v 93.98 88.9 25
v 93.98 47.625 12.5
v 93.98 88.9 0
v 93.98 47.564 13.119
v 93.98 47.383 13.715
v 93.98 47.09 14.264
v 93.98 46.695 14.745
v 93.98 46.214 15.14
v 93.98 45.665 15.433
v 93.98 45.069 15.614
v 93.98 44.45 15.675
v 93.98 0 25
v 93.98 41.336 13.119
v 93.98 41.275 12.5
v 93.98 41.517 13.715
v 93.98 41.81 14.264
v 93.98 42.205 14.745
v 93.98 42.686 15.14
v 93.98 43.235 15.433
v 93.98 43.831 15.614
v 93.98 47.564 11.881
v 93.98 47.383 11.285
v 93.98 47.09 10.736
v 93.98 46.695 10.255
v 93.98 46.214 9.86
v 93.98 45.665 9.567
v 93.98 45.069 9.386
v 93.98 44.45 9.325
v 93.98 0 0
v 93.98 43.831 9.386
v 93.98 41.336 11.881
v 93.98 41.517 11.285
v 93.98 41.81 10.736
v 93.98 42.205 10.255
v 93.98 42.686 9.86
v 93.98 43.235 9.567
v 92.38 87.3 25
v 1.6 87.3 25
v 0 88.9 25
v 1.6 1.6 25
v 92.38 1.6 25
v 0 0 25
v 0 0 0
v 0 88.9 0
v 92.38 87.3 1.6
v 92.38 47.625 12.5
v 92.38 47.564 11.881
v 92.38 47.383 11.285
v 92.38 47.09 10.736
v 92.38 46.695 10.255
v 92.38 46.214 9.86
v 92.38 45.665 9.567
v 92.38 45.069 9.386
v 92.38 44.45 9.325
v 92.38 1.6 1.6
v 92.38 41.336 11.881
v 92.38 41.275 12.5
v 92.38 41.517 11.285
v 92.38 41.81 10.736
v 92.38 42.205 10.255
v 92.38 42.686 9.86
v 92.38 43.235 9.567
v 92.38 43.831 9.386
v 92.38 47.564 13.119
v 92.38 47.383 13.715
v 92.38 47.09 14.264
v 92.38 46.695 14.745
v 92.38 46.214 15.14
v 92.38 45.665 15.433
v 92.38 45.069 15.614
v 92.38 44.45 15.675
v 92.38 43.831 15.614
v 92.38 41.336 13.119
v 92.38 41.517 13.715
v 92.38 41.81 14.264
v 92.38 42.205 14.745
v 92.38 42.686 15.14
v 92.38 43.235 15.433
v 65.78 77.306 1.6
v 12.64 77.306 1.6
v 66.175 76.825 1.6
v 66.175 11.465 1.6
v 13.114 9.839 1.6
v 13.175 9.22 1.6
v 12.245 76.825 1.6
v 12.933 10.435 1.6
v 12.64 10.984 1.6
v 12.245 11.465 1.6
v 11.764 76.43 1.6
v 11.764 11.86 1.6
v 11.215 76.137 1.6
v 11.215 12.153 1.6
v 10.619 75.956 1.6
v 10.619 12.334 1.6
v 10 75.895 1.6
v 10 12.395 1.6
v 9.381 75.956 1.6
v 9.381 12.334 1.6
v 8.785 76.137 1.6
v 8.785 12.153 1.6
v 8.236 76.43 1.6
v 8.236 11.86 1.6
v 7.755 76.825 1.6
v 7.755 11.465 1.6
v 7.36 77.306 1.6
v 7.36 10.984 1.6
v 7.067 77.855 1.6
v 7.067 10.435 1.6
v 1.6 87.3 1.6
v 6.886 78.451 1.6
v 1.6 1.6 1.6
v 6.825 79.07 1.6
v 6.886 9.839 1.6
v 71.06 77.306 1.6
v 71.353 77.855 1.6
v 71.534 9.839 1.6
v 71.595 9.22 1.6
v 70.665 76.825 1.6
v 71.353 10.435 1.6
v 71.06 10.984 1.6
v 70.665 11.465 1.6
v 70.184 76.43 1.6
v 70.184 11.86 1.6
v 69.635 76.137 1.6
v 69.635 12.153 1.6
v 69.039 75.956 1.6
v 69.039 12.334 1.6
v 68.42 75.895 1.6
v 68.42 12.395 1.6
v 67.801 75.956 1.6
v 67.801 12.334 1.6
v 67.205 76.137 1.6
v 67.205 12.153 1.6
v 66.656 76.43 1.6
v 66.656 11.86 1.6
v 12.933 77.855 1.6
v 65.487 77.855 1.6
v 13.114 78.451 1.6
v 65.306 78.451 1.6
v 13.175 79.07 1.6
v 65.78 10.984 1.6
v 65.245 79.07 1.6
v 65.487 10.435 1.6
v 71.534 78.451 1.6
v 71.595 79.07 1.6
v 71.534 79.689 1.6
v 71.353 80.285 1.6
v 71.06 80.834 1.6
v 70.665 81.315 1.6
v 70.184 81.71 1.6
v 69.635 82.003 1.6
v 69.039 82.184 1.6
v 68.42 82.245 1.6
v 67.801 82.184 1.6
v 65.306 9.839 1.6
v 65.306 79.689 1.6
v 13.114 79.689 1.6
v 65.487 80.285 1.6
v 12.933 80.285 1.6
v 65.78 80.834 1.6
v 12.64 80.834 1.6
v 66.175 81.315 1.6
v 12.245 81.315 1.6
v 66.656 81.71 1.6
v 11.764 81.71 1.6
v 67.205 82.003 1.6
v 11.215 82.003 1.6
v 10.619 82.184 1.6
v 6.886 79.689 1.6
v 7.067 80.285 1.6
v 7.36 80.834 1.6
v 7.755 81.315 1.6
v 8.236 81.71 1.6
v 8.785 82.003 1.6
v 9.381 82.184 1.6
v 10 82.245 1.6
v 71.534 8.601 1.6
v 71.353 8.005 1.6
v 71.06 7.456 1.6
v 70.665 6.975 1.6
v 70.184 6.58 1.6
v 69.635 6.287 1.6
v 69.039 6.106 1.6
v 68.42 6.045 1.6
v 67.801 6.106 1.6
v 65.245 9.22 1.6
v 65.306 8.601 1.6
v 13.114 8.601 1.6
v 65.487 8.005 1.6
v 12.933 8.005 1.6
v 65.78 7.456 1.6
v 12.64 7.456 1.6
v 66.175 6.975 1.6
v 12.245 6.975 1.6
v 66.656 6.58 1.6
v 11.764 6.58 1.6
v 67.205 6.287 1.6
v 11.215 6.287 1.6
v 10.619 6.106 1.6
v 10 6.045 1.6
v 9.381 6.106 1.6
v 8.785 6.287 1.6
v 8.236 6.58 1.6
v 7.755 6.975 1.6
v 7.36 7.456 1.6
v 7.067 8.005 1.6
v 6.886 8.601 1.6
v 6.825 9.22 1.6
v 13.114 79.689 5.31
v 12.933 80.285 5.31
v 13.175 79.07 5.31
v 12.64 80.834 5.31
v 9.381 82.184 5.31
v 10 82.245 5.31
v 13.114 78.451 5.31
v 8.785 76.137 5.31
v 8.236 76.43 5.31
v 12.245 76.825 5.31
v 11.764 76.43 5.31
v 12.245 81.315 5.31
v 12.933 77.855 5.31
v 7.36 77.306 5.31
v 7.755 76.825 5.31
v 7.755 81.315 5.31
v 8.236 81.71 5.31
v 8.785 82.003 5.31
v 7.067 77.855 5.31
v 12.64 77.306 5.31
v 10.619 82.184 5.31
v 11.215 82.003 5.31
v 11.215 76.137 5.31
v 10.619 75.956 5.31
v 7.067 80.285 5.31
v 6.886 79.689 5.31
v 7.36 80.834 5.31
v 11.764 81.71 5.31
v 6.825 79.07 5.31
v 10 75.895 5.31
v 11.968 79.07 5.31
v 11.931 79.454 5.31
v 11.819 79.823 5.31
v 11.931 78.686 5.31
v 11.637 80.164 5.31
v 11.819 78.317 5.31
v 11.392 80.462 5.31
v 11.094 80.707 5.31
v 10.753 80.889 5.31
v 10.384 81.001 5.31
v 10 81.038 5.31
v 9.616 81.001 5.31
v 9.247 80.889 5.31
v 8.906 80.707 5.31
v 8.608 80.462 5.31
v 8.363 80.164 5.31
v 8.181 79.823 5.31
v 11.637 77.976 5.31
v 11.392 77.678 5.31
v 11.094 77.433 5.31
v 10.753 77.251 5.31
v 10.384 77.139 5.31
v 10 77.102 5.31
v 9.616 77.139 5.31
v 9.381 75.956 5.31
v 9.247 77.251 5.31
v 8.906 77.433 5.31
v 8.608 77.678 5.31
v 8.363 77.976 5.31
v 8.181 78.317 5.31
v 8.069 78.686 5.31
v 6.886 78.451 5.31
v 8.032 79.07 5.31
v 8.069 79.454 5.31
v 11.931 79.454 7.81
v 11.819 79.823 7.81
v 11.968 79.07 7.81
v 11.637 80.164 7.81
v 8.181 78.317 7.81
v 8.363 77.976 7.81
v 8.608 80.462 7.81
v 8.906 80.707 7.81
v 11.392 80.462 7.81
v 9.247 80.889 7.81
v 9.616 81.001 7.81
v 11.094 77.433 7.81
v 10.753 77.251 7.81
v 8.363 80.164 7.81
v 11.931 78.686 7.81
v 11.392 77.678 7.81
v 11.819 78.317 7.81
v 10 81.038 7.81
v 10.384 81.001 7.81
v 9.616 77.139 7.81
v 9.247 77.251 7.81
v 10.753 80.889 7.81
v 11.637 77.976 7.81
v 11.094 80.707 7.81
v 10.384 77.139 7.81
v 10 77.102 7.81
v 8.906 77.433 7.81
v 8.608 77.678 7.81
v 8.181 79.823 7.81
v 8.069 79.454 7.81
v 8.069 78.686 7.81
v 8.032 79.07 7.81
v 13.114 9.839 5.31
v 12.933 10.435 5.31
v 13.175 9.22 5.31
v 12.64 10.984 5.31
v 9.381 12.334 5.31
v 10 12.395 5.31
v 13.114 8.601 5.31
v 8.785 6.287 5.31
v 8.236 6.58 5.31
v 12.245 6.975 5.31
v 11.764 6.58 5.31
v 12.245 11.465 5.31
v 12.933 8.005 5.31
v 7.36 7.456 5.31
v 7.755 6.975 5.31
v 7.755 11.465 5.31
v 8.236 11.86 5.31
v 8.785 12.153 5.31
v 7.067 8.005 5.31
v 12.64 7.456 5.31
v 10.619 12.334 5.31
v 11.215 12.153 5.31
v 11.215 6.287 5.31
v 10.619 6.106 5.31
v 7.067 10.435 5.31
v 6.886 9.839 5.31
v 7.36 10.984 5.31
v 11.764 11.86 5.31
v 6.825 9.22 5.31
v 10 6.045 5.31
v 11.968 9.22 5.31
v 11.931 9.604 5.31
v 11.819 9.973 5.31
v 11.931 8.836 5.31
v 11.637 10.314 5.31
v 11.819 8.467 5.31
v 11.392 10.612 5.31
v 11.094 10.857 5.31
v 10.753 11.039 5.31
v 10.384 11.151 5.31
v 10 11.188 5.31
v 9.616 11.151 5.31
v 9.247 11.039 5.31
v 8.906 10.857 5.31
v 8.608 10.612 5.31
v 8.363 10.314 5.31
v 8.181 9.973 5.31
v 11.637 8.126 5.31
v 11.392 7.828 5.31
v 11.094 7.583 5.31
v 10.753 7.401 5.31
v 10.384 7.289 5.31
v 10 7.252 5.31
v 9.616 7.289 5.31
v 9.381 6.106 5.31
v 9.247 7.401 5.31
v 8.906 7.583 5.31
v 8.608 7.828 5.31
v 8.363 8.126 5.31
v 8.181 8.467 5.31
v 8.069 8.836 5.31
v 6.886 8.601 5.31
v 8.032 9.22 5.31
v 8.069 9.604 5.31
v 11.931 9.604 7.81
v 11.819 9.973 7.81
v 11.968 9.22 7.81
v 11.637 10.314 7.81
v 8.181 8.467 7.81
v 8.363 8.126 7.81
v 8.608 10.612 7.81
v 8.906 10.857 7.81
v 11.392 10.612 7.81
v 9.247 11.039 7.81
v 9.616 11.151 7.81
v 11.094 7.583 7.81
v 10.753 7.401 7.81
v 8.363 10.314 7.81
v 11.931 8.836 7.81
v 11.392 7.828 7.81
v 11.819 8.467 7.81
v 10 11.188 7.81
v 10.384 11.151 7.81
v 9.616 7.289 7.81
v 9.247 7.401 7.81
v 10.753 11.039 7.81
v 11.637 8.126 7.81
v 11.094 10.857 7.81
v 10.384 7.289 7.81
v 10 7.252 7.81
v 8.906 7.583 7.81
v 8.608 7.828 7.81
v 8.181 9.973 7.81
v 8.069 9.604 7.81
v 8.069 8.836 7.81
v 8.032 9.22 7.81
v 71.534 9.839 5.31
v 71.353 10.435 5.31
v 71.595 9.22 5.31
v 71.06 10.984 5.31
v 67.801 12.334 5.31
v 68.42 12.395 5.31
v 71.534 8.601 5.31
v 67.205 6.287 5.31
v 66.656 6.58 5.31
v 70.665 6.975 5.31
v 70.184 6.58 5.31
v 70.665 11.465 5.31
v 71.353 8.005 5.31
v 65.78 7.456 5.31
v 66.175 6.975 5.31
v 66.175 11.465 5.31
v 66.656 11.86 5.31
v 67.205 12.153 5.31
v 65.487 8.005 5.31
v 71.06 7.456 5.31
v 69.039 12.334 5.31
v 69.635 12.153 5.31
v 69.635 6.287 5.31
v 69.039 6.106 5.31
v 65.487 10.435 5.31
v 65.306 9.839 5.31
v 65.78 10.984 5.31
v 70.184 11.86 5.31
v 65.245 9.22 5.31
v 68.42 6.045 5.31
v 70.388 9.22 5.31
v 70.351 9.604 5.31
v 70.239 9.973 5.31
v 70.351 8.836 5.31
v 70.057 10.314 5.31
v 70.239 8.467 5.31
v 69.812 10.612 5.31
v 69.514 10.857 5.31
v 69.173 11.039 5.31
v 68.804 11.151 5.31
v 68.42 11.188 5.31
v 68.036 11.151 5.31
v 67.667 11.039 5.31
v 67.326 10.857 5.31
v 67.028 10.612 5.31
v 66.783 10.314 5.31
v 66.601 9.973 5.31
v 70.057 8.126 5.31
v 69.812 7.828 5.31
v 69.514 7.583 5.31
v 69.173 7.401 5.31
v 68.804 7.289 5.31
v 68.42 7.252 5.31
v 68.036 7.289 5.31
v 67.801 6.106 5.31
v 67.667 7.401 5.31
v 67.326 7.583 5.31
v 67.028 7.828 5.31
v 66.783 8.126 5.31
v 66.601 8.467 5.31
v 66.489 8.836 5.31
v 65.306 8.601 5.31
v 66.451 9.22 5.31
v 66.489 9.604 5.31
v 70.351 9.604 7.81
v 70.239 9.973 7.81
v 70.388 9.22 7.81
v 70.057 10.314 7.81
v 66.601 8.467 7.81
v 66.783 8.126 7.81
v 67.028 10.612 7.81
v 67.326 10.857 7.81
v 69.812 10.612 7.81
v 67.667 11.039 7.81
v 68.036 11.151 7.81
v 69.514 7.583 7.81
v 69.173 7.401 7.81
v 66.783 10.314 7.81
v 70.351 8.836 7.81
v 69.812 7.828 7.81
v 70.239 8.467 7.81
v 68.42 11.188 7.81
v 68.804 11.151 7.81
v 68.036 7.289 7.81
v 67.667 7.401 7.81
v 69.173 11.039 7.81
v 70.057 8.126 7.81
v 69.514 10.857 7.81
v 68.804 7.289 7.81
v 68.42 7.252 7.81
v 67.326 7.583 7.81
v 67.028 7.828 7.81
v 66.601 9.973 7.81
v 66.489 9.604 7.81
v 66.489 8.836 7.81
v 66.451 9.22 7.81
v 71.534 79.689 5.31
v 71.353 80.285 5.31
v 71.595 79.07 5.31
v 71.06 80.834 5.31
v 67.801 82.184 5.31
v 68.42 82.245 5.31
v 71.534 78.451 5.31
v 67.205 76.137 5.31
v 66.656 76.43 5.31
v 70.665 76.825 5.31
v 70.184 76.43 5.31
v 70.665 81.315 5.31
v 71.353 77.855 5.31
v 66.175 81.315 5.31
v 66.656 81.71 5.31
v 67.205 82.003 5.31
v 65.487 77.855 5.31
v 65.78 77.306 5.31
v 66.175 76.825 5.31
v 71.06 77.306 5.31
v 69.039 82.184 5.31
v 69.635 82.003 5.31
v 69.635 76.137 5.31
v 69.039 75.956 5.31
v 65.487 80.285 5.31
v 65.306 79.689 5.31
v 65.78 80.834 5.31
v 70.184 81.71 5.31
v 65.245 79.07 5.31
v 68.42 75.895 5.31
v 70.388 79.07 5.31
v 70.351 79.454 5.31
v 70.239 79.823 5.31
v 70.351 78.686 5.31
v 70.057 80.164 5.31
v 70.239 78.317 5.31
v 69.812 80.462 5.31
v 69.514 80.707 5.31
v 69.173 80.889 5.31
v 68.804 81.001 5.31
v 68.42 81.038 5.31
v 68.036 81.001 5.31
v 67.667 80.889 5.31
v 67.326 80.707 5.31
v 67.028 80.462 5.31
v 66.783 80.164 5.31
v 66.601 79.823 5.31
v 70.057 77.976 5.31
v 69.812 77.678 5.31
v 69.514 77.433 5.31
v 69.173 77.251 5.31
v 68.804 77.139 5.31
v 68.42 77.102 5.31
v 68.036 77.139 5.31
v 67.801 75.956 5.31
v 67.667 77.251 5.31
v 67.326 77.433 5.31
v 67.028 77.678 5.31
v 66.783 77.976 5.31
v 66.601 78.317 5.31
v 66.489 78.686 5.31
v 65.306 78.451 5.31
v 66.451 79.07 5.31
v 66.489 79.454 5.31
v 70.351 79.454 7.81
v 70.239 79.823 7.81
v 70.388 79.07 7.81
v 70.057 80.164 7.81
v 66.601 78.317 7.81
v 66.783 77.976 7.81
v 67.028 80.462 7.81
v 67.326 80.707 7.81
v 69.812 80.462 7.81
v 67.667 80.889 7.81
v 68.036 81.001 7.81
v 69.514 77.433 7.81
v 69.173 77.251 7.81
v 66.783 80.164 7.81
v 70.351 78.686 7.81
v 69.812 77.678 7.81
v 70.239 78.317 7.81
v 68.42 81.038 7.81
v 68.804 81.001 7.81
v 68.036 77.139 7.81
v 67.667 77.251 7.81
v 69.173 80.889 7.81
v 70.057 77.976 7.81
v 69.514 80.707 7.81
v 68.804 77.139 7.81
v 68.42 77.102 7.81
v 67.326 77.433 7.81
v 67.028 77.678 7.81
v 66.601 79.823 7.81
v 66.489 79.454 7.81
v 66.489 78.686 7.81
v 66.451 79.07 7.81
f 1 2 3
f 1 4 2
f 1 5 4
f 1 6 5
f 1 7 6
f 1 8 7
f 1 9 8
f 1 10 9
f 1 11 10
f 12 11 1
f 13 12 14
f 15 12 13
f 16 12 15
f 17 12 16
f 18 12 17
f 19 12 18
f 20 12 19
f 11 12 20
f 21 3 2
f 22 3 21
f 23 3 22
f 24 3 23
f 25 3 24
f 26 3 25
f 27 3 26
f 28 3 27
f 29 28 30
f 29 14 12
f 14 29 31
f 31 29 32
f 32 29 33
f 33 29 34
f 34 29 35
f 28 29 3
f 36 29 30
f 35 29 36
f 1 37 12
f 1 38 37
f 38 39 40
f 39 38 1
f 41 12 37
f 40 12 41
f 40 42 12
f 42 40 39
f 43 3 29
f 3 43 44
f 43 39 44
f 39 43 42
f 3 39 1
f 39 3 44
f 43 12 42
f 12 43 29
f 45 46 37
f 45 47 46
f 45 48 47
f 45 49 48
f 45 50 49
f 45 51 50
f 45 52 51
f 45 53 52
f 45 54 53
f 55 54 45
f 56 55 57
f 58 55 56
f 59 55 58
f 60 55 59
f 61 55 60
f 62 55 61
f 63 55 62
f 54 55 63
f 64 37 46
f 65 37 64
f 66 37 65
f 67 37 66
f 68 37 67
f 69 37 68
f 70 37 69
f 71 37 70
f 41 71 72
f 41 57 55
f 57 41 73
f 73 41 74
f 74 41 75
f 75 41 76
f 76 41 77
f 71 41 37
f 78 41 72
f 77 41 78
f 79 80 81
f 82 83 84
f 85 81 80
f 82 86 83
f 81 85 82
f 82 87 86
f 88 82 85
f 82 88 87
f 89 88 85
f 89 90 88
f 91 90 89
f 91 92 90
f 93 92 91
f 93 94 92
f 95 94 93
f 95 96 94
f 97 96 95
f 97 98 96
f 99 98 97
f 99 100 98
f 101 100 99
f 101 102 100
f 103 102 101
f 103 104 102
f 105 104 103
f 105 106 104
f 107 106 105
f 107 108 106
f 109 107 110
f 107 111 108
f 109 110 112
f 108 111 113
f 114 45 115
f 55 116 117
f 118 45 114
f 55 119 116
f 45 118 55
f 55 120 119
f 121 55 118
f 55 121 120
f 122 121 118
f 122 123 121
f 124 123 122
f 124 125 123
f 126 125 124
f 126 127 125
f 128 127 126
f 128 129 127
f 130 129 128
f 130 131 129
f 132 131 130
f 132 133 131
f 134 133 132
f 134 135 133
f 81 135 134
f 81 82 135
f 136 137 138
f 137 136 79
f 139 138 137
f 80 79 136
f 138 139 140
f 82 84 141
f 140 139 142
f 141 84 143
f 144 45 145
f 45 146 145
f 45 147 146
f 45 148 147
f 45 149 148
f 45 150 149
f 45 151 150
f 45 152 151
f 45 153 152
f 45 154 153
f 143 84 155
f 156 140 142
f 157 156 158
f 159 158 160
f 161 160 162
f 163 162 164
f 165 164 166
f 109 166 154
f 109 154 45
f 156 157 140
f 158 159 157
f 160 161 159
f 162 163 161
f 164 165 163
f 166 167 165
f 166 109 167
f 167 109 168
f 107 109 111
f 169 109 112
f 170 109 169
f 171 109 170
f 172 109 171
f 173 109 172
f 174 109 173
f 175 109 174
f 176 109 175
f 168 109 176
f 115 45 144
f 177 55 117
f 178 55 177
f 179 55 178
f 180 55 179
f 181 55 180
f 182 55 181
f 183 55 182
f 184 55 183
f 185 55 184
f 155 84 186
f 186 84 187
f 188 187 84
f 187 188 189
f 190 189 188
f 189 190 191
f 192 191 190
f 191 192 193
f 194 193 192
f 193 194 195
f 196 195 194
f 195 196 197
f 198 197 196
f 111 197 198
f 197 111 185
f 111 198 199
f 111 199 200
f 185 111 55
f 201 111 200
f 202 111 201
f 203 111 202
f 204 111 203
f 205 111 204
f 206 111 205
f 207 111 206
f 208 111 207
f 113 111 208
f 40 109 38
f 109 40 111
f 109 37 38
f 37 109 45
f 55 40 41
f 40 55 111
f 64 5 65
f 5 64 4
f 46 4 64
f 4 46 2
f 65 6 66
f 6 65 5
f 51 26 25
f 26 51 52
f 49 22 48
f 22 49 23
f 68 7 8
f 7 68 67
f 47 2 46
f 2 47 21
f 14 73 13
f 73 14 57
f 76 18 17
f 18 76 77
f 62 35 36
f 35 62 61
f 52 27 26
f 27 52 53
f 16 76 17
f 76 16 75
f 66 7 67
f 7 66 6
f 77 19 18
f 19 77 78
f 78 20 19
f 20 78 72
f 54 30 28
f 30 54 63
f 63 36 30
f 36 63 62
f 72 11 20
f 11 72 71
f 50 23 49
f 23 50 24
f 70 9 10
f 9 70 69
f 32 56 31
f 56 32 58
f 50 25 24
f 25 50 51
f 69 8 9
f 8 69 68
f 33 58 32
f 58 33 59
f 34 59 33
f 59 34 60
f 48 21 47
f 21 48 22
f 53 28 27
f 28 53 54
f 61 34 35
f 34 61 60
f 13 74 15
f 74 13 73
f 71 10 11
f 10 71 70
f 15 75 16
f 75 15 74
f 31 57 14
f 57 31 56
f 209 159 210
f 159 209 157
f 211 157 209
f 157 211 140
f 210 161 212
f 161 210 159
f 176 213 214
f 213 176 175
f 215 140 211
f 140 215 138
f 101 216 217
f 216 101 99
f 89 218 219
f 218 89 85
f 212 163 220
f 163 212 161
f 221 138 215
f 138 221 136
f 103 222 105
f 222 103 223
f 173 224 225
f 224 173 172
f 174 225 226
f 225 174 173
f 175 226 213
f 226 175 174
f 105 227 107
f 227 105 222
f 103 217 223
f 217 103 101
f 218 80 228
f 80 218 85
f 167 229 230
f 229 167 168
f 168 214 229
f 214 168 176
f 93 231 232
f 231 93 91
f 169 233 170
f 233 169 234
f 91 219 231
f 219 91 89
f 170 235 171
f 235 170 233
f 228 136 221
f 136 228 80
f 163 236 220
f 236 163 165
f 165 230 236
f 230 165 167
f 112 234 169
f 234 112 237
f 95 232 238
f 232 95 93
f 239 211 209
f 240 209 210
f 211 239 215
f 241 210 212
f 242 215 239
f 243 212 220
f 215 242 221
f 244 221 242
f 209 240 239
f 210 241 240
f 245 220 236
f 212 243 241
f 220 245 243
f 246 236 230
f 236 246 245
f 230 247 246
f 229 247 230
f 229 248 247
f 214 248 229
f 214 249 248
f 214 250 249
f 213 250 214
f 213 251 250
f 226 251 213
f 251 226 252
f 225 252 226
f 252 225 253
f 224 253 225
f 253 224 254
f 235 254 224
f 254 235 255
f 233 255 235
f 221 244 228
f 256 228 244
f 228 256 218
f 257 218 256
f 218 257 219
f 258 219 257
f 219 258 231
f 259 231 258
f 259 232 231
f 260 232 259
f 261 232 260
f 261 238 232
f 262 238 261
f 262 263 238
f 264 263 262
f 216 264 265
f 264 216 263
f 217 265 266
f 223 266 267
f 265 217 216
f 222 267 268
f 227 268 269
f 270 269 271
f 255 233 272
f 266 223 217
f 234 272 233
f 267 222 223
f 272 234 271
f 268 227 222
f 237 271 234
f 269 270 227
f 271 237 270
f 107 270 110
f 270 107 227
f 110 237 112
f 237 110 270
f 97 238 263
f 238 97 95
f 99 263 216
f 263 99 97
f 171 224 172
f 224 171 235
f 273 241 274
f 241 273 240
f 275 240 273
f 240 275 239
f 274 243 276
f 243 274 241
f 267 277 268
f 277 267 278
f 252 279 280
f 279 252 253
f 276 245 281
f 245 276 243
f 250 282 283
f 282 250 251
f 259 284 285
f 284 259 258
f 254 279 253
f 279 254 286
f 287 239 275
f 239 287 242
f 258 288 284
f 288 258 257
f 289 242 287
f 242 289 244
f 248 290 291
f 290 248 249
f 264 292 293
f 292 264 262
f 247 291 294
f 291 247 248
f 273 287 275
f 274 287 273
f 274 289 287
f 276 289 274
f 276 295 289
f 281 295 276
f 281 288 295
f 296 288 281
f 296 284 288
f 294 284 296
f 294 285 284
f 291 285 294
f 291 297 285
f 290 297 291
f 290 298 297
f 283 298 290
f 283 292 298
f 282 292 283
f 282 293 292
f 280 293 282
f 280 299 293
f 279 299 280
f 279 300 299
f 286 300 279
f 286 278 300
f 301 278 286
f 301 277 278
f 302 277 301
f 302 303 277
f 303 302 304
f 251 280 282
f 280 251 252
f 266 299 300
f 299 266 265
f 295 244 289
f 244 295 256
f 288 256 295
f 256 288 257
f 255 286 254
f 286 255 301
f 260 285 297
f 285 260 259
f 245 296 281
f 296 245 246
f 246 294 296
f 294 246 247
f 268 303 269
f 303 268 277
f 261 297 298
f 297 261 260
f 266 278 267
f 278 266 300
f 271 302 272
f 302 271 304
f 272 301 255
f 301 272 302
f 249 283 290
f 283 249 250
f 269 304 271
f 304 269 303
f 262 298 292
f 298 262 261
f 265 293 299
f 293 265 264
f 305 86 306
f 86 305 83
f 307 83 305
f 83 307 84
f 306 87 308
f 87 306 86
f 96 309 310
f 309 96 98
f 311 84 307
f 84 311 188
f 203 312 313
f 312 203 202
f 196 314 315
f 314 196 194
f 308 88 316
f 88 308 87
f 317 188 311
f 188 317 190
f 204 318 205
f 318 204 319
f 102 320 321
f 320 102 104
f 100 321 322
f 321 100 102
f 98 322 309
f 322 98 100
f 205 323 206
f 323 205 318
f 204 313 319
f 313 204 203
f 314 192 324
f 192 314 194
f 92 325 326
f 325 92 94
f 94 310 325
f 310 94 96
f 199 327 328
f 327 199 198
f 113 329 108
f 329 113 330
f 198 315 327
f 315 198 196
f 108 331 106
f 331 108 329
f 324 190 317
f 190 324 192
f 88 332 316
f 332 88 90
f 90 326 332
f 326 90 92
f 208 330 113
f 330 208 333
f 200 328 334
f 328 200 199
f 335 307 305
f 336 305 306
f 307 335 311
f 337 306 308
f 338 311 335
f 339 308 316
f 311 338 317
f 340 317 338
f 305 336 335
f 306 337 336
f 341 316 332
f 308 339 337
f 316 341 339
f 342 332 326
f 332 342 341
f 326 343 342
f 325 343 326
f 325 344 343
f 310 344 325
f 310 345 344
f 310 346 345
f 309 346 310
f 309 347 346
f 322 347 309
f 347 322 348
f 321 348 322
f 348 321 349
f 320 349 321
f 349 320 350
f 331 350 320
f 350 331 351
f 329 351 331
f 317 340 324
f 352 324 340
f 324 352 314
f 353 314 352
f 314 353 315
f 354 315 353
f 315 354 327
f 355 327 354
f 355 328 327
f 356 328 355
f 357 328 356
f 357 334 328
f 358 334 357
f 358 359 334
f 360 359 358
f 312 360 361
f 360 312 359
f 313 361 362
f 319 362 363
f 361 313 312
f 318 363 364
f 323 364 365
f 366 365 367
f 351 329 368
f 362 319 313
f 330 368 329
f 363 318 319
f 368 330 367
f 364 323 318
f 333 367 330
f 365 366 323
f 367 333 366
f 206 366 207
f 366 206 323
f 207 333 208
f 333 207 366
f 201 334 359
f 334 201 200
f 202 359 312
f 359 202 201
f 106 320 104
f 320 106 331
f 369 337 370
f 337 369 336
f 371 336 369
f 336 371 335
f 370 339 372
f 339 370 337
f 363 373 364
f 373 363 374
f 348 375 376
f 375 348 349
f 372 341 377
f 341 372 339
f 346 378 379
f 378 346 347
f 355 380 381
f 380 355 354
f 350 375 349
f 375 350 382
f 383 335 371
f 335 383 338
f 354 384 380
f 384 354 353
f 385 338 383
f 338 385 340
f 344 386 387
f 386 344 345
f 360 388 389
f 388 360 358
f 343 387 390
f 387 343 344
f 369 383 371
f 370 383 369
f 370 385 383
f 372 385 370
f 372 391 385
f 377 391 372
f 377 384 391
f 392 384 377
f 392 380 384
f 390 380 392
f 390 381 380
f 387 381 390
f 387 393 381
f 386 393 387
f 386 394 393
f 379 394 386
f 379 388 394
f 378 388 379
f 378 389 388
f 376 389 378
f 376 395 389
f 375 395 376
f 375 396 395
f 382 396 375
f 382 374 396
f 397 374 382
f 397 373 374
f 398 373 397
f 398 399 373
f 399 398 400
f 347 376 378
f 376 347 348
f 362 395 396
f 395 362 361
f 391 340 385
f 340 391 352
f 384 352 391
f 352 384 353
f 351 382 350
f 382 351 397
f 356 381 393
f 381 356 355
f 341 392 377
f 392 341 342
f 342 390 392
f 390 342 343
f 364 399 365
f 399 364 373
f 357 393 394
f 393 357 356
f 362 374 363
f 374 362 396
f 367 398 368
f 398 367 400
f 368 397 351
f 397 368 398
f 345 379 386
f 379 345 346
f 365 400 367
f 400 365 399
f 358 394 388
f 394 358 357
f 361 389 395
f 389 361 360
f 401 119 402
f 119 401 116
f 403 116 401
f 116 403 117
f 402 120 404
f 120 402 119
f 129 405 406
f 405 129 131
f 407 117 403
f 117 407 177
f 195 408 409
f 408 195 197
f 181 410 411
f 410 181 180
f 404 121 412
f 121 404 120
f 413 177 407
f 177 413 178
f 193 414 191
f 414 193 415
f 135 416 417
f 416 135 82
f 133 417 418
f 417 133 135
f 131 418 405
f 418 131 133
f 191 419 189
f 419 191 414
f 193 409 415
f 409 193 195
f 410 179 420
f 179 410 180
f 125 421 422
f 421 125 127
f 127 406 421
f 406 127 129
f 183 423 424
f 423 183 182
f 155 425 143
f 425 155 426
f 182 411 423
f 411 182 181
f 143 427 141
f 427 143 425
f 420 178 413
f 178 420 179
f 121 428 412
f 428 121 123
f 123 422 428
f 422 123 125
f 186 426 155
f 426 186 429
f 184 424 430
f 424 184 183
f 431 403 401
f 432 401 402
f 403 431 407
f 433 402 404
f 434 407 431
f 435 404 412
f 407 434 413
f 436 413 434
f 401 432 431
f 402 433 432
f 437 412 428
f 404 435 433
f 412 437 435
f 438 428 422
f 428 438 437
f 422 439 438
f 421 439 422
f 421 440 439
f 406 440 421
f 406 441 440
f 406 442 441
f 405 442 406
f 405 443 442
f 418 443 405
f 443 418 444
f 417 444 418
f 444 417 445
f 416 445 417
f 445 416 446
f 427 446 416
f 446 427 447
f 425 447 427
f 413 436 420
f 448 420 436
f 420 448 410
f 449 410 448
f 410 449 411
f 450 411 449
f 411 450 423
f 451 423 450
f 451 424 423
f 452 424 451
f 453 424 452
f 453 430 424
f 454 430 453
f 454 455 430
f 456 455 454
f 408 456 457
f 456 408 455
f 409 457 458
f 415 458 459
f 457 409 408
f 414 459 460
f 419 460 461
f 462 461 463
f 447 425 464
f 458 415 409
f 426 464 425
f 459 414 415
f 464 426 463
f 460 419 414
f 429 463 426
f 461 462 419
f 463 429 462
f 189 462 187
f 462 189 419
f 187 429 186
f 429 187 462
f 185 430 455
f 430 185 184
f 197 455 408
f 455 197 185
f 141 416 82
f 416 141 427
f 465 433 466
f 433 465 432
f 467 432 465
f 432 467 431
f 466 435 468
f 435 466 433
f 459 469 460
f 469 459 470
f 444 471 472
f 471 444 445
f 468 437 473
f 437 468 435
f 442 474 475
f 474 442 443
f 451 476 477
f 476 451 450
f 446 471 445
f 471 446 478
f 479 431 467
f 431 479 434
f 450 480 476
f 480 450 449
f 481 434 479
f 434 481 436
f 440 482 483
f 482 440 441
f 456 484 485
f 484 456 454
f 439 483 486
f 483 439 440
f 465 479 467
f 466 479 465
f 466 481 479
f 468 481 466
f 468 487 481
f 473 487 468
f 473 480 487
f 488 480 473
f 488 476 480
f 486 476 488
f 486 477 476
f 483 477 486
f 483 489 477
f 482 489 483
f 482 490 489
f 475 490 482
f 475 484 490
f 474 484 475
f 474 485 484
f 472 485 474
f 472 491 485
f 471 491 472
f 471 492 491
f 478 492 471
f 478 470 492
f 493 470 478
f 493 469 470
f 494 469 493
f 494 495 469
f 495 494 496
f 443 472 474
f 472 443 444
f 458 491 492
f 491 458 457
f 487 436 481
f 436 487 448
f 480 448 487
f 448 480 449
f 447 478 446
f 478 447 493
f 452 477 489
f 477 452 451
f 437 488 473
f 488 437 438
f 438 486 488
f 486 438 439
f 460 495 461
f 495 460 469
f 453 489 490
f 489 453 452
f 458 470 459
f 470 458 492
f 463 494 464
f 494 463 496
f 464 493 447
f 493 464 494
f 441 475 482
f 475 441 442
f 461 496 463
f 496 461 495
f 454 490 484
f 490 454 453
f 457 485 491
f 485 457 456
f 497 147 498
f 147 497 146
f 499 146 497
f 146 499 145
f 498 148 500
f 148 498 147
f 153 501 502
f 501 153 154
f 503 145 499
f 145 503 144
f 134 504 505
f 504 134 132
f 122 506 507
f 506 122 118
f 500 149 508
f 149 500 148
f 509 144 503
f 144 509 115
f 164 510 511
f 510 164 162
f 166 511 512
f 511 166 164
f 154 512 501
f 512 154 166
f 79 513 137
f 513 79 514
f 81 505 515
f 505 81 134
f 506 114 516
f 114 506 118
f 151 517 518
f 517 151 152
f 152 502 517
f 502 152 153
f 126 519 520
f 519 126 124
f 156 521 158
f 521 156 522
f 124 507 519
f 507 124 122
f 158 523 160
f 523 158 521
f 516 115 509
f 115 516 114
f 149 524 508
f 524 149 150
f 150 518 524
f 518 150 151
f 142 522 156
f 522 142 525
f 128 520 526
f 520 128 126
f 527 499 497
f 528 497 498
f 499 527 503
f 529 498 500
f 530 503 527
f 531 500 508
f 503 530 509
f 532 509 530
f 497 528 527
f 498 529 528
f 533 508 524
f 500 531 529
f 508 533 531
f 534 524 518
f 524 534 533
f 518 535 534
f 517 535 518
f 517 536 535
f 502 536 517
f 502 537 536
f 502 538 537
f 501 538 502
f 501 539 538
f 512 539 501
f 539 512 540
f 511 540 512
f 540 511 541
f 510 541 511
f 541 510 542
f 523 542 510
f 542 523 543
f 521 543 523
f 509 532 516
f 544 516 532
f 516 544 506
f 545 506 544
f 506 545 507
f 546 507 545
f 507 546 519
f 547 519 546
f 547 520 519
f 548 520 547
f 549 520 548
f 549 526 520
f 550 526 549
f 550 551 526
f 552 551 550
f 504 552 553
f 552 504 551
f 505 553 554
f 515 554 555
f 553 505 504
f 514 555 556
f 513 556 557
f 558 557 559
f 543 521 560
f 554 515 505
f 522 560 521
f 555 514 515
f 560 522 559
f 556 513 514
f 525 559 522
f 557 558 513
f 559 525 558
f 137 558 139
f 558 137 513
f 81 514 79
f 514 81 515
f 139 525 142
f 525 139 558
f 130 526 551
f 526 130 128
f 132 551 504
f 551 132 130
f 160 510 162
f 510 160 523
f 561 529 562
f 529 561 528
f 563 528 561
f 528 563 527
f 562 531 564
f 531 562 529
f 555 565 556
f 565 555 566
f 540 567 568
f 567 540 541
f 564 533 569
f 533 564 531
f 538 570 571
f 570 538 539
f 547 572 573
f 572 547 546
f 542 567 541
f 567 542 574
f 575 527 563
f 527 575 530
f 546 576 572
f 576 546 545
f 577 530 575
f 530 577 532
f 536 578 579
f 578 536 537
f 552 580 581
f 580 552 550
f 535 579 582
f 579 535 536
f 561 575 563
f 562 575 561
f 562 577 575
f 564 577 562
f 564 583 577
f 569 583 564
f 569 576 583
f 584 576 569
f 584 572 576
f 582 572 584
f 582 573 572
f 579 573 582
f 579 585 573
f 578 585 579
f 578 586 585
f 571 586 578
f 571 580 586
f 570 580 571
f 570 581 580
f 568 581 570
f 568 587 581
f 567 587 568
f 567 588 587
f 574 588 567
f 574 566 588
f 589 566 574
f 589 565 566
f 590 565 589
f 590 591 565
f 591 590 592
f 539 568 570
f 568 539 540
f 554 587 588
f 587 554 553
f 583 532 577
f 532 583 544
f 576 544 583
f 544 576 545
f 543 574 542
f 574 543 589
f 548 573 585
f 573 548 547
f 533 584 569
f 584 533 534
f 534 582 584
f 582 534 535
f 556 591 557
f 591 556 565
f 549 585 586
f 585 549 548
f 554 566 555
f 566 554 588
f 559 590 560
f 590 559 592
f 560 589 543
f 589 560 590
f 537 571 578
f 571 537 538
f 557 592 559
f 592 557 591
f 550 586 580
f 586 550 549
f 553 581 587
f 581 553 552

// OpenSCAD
//
// simple dark box for DDS test rig
//


mm = 25.4;
$fn = 32;
e = 0.1;

pcb_w = 2.7*mm;
pcb_l = 3.15*mm;

hole_dx = 2.3*mm;
hole_dy = 2.75*mm;
peg_dia = 0.155*mm;
so_hgt = 0.15*mm;
peg_len = 2.5;

box_w = 3.7*mm;
box_l = 3.5*mm;
box_t = 1.6;
box_h = 25;

module standoff_at( x, y, dia, hole, hgt, rot) {
    translate( [x, y, 0]) {
      rotate( [0, 0, rot]) {
      difference() {
	cylinder( d=dia, h=hgt);
	translate( [0, 0, -e])
	  cylinder( d=hole, h=hgt+2*e);
      }
    }
  }
}

module standoff_at_peg( x, y, dia, peg, hgt, peg_len) {
  translate( [x, y, 0]) {
    cylinder( d=dia, h=hgt);
    translate( [0, 0, hgt-e])
      cylinder( d=peg, h=peg_len+e);
  }
}

module standoffs() {
  standoff_at_peg( 0, hole_dy, 0.25*mm, peg_dia, so_hgt, peg_len);
  standoff_at_peg( 0, 0, 0.25*mm, peg_dia, so_hgt, peg_len);
  standoff_at_peg( hole_dx, 0, 0.25*mm, peg_dia, so_hgt, peg_len);
  standoff_at_peg( hole_dx, hole_dy, 0.25*mm, peg_dia, so_hgt, peg_len);
  //  translate( [-0.2*mm, -0.2*mm, 0]) color("red") cube( [pcb_w, pcb_l, 1.6]);
}

module box( wid, leng, hgt, thick) {
  difference() {
    cube( [wid, leng, hgt]);
    translate( [thick, thick, thick])
      cube( [wid-2*thick, leng-2*thick, hgt]);
    rotate( [90, 0, 90])
      translate( [box_l/2, box_h/2, box_l])
      cylinder( d=0.25*mm, h=10);
  }
}

module box_assy() {
  box( box_w, box_l, box_h, box_t);
  translate( [10, (box_w-pcb_w)/2-0.2*mm+box_t, box_t-e])
    standoffs();
}

module lid() {
  cube( [box_w, box_l, box_t]);
  translate( [box_t, box_t, -box_t+e])
    cube( [box_w-box_t*2, box_l-box_t*2, box_t]);
}

 box_assy();
// rotate( [0, 180, 0]) lid();
